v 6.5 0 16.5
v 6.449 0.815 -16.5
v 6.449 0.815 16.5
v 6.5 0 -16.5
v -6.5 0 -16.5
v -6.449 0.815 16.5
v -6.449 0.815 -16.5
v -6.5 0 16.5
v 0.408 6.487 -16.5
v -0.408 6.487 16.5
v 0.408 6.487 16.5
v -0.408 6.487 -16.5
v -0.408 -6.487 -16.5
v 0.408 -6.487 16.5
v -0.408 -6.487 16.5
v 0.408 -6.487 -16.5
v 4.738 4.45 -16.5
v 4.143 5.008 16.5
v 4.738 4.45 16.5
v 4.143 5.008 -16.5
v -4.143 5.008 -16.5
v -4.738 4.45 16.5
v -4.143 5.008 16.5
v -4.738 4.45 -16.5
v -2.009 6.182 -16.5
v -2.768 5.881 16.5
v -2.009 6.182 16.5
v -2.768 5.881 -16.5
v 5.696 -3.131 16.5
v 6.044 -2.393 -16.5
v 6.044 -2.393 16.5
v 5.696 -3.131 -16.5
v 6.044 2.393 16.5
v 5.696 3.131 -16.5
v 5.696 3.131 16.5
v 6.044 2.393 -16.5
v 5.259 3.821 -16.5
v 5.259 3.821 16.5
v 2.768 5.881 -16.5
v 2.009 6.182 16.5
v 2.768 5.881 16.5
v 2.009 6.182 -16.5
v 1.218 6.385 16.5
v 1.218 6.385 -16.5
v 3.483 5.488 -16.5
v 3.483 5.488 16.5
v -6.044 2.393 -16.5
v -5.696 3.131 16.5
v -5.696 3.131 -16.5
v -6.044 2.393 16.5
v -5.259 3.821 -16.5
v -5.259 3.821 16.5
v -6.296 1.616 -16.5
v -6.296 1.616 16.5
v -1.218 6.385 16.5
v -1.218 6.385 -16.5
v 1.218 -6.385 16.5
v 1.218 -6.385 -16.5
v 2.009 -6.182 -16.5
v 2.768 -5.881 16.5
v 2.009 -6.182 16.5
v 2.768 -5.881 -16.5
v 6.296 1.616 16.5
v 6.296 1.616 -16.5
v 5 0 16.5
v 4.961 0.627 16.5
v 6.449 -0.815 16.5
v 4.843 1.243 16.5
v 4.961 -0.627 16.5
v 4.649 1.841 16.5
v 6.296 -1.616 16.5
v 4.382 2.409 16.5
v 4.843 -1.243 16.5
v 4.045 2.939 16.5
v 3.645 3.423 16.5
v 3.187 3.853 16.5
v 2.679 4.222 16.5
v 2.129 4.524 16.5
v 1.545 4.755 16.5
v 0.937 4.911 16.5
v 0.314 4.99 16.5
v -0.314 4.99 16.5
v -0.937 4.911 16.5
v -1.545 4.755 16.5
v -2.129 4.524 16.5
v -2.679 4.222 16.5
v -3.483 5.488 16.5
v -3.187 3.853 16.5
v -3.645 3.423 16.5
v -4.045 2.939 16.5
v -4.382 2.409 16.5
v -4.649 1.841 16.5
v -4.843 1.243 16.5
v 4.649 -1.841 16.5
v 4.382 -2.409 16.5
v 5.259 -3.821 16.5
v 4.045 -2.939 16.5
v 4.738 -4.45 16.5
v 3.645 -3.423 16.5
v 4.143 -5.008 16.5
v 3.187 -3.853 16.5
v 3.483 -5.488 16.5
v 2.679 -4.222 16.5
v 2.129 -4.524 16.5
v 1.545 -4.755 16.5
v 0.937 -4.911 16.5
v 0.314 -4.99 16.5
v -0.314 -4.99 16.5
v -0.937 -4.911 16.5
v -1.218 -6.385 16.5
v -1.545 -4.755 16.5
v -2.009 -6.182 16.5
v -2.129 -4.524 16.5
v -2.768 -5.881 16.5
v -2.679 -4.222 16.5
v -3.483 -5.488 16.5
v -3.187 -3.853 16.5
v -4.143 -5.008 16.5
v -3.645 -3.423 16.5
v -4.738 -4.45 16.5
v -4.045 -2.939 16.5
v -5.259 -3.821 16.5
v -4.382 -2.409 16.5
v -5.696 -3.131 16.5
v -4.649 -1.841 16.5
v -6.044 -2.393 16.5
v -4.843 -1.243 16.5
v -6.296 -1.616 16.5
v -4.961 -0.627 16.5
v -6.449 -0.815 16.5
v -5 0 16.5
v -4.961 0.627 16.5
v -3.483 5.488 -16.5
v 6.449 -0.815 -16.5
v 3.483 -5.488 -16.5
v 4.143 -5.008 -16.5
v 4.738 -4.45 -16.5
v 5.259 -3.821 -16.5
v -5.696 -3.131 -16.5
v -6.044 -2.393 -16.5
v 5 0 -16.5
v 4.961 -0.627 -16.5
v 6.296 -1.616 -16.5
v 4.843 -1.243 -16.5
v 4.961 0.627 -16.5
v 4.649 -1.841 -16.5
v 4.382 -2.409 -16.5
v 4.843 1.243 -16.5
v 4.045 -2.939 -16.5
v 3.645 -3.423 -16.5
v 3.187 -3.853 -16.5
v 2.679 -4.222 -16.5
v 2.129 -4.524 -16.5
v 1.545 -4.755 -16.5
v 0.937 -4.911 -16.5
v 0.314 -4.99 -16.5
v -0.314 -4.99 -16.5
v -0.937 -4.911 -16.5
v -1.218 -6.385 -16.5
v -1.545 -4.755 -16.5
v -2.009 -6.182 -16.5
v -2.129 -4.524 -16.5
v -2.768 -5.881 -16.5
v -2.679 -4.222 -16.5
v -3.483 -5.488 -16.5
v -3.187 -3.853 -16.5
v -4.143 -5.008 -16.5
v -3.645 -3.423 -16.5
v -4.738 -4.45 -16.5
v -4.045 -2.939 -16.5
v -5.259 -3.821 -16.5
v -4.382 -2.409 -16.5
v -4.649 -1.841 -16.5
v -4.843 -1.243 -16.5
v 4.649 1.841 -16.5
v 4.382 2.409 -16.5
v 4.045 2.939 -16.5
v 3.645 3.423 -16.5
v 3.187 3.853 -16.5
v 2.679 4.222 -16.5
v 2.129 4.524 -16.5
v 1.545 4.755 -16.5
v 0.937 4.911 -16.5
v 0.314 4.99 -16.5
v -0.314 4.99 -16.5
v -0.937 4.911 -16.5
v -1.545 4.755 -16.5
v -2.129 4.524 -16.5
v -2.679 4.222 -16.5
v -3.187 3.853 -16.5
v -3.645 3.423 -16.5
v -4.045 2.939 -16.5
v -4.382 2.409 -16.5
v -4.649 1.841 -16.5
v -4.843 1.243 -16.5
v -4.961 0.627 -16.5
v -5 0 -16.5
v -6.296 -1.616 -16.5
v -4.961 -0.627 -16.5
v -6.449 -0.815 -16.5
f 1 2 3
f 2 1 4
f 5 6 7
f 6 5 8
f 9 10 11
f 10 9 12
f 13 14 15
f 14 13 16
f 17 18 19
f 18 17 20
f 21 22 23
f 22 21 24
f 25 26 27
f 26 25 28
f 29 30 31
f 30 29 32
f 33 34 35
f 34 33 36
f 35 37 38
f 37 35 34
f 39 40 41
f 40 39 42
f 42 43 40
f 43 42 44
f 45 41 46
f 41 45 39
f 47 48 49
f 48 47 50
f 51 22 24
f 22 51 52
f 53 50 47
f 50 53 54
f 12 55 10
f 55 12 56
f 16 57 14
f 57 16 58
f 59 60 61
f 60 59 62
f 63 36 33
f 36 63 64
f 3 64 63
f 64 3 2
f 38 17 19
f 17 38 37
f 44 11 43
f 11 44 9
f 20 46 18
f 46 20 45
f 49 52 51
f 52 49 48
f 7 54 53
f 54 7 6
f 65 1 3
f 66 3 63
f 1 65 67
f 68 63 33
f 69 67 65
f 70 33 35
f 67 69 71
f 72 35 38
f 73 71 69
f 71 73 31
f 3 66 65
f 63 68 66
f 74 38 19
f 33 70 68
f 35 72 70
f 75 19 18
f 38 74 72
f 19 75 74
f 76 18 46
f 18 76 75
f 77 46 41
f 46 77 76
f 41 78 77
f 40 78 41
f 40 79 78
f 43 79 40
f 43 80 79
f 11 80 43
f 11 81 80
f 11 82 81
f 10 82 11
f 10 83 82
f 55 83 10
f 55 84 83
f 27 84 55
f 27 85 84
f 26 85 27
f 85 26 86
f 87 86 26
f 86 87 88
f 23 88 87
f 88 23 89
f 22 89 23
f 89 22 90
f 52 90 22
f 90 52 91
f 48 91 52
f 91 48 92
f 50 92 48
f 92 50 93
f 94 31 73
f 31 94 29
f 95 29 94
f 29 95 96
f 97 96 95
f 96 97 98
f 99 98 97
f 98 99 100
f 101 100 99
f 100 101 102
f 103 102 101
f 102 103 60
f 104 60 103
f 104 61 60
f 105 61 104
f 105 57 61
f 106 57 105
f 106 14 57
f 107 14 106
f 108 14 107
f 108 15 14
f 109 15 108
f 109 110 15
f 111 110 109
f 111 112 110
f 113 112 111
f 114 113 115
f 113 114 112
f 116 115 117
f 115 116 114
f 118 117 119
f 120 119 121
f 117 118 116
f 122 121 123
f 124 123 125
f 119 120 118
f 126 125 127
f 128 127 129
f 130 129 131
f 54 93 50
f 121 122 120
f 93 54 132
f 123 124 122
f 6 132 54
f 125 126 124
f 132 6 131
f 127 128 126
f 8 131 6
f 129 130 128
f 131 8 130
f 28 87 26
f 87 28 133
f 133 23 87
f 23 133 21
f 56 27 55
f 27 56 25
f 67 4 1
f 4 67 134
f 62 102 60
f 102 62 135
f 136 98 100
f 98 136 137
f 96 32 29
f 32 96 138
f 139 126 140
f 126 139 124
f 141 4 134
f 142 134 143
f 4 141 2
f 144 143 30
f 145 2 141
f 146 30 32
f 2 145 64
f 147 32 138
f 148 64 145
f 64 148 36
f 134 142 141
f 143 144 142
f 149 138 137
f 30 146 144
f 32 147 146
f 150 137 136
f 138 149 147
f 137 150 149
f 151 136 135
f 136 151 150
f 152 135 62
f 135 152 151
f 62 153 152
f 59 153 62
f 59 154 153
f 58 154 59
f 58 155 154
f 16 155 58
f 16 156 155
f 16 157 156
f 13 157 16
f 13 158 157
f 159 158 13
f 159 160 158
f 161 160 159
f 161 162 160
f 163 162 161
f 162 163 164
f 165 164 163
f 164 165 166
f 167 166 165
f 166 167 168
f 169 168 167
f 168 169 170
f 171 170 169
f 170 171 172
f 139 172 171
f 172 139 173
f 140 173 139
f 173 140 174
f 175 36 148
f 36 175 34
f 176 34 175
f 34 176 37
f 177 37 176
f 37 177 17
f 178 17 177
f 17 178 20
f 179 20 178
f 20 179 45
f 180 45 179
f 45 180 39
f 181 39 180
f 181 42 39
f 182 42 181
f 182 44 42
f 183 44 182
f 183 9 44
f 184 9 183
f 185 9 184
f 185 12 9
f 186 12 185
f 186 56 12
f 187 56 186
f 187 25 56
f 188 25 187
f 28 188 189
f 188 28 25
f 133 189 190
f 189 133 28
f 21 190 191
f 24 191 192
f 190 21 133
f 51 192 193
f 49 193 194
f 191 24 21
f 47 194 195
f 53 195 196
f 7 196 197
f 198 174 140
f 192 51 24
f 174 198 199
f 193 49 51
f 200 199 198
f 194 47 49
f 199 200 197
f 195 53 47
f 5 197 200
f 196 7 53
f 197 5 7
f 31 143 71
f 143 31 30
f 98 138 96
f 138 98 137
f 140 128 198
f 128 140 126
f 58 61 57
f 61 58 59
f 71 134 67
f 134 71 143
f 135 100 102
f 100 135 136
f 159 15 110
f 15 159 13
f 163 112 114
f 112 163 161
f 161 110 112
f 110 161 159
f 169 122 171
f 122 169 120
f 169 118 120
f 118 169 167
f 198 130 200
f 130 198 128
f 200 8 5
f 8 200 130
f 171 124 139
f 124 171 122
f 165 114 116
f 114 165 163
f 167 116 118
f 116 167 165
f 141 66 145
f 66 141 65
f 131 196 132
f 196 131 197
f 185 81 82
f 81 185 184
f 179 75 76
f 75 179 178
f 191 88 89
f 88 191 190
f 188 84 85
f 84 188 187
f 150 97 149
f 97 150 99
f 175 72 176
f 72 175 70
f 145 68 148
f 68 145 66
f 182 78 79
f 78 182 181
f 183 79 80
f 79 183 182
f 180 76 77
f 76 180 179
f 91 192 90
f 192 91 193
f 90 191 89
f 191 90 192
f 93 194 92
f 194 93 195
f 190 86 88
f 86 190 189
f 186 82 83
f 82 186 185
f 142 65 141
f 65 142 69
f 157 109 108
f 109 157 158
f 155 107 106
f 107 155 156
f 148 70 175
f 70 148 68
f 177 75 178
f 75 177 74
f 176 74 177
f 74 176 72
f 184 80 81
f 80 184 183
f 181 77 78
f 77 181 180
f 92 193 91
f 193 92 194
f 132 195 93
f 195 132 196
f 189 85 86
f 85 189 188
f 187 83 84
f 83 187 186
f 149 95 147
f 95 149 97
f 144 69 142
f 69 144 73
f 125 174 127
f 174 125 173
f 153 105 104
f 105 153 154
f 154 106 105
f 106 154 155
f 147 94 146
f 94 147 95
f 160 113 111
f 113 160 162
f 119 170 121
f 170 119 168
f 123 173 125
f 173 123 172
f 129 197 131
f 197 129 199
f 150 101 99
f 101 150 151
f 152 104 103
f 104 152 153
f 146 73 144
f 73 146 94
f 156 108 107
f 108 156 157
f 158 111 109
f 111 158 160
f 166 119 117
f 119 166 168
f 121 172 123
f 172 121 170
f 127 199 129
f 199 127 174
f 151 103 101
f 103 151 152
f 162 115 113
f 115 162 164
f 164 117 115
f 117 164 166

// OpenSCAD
$fn = 50;


difference() {
	union() {
		translate(v = [0, 0, -16.5000000000]) {
			cylinder(h = 33, r = 6.5000000000);
		}
	}
	union() {
		translate(v = [0, 0, -100.0000000000]) {
			cylinder(h = 200, r = 5.0000000000);
		}
	}
}
